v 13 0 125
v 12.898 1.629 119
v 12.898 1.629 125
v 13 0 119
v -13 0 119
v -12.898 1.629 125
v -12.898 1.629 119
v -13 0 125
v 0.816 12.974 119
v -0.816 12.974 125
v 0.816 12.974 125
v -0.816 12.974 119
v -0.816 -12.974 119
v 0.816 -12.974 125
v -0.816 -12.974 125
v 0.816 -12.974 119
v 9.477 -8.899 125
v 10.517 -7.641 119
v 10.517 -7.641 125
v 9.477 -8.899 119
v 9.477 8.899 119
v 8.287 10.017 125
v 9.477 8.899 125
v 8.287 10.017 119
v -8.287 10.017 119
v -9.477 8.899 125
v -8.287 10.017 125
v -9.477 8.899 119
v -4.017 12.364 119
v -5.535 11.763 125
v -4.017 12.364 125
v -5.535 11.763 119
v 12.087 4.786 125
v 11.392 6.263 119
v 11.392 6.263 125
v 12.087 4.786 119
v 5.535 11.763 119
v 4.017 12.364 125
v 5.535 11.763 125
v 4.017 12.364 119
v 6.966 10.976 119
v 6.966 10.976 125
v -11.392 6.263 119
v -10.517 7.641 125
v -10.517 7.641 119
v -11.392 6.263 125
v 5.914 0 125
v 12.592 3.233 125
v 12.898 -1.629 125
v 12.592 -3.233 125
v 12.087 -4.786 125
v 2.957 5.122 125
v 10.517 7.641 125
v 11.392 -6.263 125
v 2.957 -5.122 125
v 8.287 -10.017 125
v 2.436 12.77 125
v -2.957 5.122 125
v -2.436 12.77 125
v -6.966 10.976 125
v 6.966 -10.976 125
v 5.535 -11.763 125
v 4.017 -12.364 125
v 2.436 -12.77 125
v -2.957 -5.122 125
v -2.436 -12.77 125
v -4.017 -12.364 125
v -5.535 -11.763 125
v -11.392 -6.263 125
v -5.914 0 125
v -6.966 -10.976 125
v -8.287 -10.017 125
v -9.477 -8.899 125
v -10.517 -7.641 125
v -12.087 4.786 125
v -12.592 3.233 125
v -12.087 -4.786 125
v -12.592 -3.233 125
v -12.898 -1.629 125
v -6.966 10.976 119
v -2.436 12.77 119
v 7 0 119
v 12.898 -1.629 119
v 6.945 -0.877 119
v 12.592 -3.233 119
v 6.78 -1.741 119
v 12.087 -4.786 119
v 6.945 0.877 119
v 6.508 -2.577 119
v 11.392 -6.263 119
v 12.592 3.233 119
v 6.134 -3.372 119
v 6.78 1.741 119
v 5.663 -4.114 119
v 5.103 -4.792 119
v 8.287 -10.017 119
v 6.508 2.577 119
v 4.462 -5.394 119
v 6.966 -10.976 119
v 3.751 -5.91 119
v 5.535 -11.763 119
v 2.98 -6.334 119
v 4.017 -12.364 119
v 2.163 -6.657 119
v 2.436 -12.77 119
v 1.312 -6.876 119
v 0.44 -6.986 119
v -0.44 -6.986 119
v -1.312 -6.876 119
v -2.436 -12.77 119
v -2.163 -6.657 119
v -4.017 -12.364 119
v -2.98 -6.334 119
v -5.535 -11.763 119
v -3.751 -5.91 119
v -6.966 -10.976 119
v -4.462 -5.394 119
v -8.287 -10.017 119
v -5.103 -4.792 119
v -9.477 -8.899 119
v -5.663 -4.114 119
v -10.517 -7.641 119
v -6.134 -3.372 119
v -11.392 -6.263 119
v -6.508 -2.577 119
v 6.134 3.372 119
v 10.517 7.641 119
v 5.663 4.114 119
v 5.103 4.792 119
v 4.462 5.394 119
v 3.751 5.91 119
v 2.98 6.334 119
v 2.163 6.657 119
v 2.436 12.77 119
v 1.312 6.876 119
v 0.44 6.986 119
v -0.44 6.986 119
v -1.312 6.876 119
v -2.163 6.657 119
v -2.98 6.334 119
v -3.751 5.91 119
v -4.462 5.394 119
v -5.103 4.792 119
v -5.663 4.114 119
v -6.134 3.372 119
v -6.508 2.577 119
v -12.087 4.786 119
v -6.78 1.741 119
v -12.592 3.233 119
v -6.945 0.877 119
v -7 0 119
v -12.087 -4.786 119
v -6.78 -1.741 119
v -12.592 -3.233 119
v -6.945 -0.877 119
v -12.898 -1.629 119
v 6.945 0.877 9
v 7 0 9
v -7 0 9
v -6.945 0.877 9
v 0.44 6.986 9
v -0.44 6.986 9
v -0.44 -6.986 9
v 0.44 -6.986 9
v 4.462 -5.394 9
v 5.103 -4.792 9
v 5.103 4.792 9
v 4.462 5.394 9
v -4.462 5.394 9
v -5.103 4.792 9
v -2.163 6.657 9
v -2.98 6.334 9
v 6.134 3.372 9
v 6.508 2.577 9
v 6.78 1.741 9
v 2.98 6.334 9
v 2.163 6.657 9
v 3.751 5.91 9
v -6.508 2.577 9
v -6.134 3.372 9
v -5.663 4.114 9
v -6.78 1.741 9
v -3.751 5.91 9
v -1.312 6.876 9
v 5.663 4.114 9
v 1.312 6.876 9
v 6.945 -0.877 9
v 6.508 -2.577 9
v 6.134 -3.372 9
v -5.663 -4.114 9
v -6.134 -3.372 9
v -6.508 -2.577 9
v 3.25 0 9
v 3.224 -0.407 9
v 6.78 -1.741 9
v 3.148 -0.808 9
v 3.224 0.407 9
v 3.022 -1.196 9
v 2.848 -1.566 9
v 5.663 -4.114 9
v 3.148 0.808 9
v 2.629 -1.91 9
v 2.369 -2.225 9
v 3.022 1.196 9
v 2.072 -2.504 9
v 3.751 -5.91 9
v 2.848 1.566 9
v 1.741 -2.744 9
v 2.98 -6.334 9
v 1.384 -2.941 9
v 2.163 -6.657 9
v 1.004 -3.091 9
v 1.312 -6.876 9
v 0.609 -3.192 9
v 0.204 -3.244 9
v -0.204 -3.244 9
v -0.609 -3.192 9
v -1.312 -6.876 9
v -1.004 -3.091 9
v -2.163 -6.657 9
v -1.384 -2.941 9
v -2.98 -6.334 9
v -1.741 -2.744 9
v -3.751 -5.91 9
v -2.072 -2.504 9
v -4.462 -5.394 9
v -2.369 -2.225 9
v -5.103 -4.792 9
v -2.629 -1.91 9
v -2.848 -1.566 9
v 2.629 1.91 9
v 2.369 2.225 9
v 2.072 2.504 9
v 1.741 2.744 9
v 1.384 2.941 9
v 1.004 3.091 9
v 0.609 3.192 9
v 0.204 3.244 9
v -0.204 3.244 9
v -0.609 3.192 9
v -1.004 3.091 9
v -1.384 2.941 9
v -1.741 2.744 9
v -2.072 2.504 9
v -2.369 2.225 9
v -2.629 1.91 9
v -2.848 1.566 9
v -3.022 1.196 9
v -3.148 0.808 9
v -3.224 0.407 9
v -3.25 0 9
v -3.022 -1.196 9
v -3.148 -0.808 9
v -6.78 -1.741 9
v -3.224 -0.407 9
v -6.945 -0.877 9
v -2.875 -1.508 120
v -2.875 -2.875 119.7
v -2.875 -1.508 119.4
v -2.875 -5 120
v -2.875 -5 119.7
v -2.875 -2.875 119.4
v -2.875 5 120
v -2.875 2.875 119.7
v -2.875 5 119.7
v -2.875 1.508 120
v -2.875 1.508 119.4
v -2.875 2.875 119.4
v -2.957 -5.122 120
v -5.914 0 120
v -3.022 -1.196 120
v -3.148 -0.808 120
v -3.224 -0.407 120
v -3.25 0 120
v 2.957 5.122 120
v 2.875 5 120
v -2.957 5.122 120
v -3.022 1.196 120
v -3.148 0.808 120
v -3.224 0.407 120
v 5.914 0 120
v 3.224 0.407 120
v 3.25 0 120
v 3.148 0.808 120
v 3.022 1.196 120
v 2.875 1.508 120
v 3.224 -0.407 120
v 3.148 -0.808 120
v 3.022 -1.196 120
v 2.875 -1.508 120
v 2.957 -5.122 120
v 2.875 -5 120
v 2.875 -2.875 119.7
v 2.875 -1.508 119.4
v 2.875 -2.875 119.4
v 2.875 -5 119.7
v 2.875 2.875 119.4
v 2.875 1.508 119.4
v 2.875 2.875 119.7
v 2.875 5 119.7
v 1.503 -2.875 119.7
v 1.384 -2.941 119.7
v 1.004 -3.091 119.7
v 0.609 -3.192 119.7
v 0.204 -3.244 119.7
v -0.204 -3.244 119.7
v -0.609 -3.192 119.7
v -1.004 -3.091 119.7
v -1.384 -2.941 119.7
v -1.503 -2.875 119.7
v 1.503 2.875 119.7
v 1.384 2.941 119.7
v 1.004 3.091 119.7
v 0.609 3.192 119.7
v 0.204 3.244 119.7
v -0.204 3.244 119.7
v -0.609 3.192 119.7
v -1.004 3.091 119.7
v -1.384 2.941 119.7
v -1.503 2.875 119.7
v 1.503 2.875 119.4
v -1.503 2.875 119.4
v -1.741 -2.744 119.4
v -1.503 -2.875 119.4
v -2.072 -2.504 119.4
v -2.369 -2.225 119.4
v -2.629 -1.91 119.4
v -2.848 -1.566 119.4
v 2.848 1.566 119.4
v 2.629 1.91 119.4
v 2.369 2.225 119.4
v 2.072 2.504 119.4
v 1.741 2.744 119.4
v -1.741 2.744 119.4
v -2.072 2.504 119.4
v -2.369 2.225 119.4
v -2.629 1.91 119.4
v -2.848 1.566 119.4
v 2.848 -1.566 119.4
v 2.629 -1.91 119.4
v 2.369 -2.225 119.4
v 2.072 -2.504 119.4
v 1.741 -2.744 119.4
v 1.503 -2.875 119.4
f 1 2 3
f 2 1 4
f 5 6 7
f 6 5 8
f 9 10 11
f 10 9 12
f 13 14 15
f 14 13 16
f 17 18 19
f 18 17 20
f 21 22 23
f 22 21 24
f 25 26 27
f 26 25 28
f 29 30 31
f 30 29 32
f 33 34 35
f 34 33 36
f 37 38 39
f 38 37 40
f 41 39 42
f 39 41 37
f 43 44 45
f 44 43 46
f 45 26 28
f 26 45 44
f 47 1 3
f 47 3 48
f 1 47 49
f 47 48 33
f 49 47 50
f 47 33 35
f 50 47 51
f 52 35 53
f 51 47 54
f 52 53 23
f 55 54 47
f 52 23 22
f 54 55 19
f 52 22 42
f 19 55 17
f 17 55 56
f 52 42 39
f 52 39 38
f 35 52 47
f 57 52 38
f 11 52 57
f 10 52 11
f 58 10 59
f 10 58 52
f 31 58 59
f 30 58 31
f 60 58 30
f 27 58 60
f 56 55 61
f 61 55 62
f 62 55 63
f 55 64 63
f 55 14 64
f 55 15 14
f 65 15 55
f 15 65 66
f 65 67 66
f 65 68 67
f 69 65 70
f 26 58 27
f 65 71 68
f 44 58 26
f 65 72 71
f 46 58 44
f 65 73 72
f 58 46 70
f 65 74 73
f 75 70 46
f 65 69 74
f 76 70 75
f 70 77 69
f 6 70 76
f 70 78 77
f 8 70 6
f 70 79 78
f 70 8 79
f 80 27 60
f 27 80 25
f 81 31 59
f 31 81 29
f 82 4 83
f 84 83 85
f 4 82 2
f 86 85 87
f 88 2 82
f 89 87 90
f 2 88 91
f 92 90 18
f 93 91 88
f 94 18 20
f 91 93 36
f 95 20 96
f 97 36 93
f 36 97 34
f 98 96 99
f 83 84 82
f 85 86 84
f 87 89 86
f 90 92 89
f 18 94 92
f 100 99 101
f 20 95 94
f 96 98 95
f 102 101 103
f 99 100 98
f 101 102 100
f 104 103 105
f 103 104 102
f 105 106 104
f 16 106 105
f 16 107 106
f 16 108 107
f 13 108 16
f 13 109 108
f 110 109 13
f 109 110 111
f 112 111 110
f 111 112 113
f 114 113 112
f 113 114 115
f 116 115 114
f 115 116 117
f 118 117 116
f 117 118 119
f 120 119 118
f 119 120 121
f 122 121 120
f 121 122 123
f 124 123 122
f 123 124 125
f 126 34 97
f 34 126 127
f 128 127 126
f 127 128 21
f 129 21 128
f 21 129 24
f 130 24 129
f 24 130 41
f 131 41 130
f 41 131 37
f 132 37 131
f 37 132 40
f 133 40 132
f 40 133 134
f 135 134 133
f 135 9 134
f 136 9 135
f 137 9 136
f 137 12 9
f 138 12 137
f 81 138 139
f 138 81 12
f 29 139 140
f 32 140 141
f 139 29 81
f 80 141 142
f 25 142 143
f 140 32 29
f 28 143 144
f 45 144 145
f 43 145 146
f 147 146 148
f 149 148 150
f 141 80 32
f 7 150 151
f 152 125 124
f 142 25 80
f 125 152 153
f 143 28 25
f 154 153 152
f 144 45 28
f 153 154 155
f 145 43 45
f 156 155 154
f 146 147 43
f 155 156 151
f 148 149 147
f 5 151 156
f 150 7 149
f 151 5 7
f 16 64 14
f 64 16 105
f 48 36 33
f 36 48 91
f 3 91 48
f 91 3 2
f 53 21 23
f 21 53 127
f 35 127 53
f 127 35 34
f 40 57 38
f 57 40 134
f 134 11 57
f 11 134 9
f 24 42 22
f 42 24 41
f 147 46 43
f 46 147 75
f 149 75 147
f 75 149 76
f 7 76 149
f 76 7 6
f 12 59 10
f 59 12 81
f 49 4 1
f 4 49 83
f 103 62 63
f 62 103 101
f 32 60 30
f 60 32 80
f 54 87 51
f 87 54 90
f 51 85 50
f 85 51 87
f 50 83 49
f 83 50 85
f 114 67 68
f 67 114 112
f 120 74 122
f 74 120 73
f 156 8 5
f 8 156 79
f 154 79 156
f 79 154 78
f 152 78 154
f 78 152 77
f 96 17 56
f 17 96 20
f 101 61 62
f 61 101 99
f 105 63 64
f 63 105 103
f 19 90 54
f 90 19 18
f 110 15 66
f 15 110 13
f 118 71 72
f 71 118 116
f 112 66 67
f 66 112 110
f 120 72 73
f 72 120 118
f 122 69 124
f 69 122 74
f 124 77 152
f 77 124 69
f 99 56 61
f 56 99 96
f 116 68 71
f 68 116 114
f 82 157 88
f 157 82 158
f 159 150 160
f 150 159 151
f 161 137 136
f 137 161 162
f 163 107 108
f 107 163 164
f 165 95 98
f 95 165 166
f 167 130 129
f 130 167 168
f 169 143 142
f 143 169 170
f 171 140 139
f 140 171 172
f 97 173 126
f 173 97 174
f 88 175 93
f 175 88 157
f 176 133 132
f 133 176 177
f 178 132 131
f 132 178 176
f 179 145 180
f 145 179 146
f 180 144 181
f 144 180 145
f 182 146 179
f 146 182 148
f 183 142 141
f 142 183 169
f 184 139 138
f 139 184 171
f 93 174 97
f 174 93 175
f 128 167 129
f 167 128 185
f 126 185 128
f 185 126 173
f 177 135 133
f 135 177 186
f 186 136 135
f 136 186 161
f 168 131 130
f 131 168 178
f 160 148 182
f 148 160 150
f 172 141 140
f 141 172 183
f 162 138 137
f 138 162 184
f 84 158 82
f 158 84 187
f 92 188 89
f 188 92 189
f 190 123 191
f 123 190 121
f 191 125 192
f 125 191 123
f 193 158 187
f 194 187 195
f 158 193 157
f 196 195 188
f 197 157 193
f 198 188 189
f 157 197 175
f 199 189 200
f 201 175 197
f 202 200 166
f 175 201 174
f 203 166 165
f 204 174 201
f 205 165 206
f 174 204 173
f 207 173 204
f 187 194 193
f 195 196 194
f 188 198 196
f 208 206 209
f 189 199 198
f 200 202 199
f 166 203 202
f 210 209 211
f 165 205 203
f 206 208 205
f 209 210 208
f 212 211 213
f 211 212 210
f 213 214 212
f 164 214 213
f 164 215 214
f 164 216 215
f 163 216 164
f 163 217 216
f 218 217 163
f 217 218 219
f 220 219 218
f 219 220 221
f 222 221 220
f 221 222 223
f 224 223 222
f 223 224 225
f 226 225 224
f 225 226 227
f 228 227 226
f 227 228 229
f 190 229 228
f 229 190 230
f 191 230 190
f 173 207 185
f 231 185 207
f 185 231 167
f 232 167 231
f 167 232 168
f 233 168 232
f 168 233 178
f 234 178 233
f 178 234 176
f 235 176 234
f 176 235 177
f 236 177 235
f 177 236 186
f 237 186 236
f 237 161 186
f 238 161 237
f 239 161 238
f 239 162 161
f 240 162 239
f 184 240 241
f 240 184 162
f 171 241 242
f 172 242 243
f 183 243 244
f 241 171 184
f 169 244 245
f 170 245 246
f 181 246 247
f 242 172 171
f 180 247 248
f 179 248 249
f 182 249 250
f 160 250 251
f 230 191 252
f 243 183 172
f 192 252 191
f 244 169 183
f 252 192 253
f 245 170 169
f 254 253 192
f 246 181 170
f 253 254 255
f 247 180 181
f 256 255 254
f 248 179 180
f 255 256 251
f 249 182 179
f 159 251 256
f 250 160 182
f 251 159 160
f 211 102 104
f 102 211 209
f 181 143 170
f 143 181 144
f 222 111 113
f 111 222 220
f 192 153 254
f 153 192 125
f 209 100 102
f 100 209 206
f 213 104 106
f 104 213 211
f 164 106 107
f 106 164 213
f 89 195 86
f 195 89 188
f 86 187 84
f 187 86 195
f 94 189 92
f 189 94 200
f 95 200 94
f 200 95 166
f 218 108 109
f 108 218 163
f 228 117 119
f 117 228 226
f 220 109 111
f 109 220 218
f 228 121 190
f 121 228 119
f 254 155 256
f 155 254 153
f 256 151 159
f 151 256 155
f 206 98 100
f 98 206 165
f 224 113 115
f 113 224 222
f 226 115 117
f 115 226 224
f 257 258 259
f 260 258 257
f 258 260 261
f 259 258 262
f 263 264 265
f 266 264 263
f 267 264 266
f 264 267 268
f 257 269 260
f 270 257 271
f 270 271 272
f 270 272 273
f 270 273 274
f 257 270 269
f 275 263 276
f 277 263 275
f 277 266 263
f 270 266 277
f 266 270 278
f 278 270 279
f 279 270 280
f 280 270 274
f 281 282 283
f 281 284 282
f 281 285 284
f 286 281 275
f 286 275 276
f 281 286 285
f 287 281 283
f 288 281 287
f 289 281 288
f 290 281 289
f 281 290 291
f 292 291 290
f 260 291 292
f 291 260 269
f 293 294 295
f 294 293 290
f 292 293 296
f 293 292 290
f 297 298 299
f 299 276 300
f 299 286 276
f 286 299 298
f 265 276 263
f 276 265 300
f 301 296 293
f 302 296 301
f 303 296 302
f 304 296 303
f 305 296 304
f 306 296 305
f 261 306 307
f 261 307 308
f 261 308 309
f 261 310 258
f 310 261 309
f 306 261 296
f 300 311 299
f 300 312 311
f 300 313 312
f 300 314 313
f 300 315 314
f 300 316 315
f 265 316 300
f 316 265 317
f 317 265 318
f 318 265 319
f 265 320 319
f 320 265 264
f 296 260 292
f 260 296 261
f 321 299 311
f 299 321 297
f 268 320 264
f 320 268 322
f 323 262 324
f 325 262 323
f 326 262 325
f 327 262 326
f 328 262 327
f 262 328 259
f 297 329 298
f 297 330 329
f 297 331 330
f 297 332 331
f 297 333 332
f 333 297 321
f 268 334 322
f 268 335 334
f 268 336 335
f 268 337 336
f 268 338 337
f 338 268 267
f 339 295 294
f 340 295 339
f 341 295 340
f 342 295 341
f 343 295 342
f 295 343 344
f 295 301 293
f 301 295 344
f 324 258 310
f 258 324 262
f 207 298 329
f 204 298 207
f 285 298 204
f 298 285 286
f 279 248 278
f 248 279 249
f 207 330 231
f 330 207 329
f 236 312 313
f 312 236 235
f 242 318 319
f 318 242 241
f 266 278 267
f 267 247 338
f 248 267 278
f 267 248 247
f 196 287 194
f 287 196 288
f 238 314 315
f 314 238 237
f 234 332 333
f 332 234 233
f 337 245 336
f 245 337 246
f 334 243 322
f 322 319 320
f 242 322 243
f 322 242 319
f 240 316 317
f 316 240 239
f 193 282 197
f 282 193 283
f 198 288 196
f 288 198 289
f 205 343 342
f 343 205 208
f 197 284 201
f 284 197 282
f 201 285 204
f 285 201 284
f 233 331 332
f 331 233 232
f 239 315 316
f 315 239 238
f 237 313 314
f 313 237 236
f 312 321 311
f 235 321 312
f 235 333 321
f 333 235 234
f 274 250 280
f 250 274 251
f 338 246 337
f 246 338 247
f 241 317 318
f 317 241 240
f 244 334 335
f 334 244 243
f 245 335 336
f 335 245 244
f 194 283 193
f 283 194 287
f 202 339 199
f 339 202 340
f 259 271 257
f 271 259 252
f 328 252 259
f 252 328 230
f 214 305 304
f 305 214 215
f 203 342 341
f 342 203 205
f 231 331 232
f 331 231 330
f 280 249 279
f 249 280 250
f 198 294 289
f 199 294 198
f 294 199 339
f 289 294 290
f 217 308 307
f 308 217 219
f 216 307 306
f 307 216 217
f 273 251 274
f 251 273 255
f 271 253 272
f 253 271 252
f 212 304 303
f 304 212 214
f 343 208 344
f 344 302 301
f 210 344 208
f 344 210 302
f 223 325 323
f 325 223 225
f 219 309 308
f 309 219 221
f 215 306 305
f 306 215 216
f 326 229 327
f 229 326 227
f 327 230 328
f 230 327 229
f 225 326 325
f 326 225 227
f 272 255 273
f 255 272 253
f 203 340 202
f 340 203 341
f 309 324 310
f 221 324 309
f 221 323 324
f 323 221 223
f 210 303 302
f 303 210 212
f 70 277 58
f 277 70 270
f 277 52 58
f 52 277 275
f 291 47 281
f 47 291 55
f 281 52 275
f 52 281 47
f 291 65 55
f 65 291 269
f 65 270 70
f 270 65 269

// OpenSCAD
$fn = 50;


difference() {
	union() {
		translate(v = [0, 0, 119.0000000000]) {
			cylinder(h = 6, r = 13.0000000000);
		}
		translate(v = [0, 0, 9.0000000000]) {
			cylinder(h = 116, r = 7.0000000000);
		}
	}
	union() {
		translate(v = [0, 0, 125]) {
			rotate(a = [0, 0, 0]) {
				difference() {
					union() {
						#translate(v = [-2.8750000000, -5.0000000000, -5.3000000000]) {
							cube(size = [5.7500000000, 10, 0.3000000000]);
						}
						#translate(v = [-2.8750000000, -2.8750000000, -5.6000000000]) {
							cube(size = [5.7500000000, 5.7500000000, 0.3000000000]);
						}
						#translate(v = [-2.8750000000, -5.0000000000, 0]) {
							cube(size = [5.7500000000, 10, 0.3000000000]);
						}
						#translate(v = [-2.8750000000, -2.8750000000, 0.3000000000]) {
							cube(size = [5.7500000000, 5.7500000000, 0.3000000000]);
						}
						#translate(v = [0, 0, -100.0000000000]) {
							cylinder(h = 200, r = 3.2500000000);
						}
						translate(v = [0, 0, -5]) {
							#linear_extrude(height = 5) {
								polygon(points = [[5.9142500000, 0.0000000000], [2.9571250000, 5.1218907443], [-2.9571250000, 5.1218907443], [-5.9142500000, 0.0000000000], [-2.9571250000, -5.1218907443], [2.9571250000, -5.1218907443]]);
							}
						}
						#translate(v = [-2.8750000000, -5.0000000000, -5.3000000000]) {
							cube(size = [5.7500000000, 10, 0.3000000000]);
						}
						#translate(v = [-2.8750000000, -2.8750000000, -5.6000000000]) {
							cube(size = [5.7500000000, 5.7500000000, 0.3000000000]);
						}
						#translate(v = [-2.8750000000, -5.0000000000, 0]) {
							cube(size = [5.7500000000, 10, 0.3000000000]);
						}
						#translate(v = [-2.8750000000, -2.8750000000, 0.3000000000]) {
							cube(size = [5.7500000000, 5.7500000000, 0.3000000000]);
						}
						#translate(v = [0, 0, -100.0000000000]) {
							cylinder(h = 200, r = 3.2500000000);
						}
						#translate(v = [-2.8750000000, -5.0000000000, -5.3000000000]) {
							cube(size = [5.7500000000, 10, 0.3000000000]);
						}
						#translate(v = [-2.8750000000, -2.8750000000, -5.6000000000]) {
							cube(size = [5.7500000000, 5.7500000000, 0.3000000000]);
						}
						#translate(v = [-2.8750000000, -5.0000000000, 0]) {
							cube(size = [5.7500000000, 10, 0.3000000000]);
						}
						#translate(v = [-2.8750000000, -2.8750000000, 0.3000000000]) {
							cube(size = [5.7500000000, 5.7500000000, 0.3000000000]);
						}
						#translate(v = [0, 0, -100.0000000000]) {
							cylinder(h = 200, r = 3.2500000000);
						}
					}
					union();
				}
			}
		}
		#translate(v = [0, 0, -100.0000000000]) {
			cylinder(h = 200, r = 3.2500000000);
		}
	}
}
